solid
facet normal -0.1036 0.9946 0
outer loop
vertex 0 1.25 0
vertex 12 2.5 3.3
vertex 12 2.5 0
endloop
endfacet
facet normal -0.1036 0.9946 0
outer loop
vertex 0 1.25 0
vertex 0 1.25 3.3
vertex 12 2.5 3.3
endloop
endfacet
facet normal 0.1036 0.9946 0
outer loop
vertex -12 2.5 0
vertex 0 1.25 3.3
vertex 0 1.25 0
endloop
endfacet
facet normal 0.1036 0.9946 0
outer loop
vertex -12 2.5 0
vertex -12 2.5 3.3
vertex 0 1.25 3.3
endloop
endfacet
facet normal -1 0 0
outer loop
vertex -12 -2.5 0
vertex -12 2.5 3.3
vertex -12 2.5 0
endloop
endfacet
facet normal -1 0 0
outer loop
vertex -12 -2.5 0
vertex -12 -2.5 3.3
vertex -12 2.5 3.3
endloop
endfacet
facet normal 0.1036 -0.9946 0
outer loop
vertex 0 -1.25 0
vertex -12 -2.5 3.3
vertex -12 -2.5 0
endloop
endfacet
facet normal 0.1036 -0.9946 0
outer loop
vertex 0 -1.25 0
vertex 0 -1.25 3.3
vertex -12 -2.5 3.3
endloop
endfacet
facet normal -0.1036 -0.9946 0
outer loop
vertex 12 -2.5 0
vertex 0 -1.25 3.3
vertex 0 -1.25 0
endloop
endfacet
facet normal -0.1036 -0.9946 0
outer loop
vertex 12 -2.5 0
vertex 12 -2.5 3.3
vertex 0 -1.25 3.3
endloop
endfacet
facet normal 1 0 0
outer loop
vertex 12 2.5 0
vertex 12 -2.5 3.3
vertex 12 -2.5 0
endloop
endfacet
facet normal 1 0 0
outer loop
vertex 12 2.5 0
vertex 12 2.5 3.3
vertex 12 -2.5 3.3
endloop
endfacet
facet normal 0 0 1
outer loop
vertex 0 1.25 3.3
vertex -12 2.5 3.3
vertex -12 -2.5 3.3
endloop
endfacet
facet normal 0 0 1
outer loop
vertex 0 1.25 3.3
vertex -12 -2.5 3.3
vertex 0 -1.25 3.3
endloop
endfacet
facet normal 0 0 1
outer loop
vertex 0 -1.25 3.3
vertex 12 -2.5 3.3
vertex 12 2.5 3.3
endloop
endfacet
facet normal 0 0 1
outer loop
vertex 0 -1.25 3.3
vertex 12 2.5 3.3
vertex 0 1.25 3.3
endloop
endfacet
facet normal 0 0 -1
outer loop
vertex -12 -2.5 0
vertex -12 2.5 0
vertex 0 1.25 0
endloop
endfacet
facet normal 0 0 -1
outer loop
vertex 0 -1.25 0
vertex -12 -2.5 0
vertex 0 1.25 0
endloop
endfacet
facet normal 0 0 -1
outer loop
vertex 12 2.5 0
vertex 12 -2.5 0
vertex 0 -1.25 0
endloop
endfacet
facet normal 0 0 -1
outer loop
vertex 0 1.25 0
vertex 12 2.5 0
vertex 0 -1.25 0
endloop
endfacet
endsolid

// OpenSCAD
// Butterfly key for the two-half Surface Go window frame. It drops into the
// bow-tie pocket across the seam in the back rim and is glued in.
// Landscape: print 1 (bottom wall). Portrait: print 2 (both long walls).
// Print flat as exported, no supports.
// Dimensions come from surface-go-window-frame.scad.
use <surface-go-window-frame.scad>

key();
